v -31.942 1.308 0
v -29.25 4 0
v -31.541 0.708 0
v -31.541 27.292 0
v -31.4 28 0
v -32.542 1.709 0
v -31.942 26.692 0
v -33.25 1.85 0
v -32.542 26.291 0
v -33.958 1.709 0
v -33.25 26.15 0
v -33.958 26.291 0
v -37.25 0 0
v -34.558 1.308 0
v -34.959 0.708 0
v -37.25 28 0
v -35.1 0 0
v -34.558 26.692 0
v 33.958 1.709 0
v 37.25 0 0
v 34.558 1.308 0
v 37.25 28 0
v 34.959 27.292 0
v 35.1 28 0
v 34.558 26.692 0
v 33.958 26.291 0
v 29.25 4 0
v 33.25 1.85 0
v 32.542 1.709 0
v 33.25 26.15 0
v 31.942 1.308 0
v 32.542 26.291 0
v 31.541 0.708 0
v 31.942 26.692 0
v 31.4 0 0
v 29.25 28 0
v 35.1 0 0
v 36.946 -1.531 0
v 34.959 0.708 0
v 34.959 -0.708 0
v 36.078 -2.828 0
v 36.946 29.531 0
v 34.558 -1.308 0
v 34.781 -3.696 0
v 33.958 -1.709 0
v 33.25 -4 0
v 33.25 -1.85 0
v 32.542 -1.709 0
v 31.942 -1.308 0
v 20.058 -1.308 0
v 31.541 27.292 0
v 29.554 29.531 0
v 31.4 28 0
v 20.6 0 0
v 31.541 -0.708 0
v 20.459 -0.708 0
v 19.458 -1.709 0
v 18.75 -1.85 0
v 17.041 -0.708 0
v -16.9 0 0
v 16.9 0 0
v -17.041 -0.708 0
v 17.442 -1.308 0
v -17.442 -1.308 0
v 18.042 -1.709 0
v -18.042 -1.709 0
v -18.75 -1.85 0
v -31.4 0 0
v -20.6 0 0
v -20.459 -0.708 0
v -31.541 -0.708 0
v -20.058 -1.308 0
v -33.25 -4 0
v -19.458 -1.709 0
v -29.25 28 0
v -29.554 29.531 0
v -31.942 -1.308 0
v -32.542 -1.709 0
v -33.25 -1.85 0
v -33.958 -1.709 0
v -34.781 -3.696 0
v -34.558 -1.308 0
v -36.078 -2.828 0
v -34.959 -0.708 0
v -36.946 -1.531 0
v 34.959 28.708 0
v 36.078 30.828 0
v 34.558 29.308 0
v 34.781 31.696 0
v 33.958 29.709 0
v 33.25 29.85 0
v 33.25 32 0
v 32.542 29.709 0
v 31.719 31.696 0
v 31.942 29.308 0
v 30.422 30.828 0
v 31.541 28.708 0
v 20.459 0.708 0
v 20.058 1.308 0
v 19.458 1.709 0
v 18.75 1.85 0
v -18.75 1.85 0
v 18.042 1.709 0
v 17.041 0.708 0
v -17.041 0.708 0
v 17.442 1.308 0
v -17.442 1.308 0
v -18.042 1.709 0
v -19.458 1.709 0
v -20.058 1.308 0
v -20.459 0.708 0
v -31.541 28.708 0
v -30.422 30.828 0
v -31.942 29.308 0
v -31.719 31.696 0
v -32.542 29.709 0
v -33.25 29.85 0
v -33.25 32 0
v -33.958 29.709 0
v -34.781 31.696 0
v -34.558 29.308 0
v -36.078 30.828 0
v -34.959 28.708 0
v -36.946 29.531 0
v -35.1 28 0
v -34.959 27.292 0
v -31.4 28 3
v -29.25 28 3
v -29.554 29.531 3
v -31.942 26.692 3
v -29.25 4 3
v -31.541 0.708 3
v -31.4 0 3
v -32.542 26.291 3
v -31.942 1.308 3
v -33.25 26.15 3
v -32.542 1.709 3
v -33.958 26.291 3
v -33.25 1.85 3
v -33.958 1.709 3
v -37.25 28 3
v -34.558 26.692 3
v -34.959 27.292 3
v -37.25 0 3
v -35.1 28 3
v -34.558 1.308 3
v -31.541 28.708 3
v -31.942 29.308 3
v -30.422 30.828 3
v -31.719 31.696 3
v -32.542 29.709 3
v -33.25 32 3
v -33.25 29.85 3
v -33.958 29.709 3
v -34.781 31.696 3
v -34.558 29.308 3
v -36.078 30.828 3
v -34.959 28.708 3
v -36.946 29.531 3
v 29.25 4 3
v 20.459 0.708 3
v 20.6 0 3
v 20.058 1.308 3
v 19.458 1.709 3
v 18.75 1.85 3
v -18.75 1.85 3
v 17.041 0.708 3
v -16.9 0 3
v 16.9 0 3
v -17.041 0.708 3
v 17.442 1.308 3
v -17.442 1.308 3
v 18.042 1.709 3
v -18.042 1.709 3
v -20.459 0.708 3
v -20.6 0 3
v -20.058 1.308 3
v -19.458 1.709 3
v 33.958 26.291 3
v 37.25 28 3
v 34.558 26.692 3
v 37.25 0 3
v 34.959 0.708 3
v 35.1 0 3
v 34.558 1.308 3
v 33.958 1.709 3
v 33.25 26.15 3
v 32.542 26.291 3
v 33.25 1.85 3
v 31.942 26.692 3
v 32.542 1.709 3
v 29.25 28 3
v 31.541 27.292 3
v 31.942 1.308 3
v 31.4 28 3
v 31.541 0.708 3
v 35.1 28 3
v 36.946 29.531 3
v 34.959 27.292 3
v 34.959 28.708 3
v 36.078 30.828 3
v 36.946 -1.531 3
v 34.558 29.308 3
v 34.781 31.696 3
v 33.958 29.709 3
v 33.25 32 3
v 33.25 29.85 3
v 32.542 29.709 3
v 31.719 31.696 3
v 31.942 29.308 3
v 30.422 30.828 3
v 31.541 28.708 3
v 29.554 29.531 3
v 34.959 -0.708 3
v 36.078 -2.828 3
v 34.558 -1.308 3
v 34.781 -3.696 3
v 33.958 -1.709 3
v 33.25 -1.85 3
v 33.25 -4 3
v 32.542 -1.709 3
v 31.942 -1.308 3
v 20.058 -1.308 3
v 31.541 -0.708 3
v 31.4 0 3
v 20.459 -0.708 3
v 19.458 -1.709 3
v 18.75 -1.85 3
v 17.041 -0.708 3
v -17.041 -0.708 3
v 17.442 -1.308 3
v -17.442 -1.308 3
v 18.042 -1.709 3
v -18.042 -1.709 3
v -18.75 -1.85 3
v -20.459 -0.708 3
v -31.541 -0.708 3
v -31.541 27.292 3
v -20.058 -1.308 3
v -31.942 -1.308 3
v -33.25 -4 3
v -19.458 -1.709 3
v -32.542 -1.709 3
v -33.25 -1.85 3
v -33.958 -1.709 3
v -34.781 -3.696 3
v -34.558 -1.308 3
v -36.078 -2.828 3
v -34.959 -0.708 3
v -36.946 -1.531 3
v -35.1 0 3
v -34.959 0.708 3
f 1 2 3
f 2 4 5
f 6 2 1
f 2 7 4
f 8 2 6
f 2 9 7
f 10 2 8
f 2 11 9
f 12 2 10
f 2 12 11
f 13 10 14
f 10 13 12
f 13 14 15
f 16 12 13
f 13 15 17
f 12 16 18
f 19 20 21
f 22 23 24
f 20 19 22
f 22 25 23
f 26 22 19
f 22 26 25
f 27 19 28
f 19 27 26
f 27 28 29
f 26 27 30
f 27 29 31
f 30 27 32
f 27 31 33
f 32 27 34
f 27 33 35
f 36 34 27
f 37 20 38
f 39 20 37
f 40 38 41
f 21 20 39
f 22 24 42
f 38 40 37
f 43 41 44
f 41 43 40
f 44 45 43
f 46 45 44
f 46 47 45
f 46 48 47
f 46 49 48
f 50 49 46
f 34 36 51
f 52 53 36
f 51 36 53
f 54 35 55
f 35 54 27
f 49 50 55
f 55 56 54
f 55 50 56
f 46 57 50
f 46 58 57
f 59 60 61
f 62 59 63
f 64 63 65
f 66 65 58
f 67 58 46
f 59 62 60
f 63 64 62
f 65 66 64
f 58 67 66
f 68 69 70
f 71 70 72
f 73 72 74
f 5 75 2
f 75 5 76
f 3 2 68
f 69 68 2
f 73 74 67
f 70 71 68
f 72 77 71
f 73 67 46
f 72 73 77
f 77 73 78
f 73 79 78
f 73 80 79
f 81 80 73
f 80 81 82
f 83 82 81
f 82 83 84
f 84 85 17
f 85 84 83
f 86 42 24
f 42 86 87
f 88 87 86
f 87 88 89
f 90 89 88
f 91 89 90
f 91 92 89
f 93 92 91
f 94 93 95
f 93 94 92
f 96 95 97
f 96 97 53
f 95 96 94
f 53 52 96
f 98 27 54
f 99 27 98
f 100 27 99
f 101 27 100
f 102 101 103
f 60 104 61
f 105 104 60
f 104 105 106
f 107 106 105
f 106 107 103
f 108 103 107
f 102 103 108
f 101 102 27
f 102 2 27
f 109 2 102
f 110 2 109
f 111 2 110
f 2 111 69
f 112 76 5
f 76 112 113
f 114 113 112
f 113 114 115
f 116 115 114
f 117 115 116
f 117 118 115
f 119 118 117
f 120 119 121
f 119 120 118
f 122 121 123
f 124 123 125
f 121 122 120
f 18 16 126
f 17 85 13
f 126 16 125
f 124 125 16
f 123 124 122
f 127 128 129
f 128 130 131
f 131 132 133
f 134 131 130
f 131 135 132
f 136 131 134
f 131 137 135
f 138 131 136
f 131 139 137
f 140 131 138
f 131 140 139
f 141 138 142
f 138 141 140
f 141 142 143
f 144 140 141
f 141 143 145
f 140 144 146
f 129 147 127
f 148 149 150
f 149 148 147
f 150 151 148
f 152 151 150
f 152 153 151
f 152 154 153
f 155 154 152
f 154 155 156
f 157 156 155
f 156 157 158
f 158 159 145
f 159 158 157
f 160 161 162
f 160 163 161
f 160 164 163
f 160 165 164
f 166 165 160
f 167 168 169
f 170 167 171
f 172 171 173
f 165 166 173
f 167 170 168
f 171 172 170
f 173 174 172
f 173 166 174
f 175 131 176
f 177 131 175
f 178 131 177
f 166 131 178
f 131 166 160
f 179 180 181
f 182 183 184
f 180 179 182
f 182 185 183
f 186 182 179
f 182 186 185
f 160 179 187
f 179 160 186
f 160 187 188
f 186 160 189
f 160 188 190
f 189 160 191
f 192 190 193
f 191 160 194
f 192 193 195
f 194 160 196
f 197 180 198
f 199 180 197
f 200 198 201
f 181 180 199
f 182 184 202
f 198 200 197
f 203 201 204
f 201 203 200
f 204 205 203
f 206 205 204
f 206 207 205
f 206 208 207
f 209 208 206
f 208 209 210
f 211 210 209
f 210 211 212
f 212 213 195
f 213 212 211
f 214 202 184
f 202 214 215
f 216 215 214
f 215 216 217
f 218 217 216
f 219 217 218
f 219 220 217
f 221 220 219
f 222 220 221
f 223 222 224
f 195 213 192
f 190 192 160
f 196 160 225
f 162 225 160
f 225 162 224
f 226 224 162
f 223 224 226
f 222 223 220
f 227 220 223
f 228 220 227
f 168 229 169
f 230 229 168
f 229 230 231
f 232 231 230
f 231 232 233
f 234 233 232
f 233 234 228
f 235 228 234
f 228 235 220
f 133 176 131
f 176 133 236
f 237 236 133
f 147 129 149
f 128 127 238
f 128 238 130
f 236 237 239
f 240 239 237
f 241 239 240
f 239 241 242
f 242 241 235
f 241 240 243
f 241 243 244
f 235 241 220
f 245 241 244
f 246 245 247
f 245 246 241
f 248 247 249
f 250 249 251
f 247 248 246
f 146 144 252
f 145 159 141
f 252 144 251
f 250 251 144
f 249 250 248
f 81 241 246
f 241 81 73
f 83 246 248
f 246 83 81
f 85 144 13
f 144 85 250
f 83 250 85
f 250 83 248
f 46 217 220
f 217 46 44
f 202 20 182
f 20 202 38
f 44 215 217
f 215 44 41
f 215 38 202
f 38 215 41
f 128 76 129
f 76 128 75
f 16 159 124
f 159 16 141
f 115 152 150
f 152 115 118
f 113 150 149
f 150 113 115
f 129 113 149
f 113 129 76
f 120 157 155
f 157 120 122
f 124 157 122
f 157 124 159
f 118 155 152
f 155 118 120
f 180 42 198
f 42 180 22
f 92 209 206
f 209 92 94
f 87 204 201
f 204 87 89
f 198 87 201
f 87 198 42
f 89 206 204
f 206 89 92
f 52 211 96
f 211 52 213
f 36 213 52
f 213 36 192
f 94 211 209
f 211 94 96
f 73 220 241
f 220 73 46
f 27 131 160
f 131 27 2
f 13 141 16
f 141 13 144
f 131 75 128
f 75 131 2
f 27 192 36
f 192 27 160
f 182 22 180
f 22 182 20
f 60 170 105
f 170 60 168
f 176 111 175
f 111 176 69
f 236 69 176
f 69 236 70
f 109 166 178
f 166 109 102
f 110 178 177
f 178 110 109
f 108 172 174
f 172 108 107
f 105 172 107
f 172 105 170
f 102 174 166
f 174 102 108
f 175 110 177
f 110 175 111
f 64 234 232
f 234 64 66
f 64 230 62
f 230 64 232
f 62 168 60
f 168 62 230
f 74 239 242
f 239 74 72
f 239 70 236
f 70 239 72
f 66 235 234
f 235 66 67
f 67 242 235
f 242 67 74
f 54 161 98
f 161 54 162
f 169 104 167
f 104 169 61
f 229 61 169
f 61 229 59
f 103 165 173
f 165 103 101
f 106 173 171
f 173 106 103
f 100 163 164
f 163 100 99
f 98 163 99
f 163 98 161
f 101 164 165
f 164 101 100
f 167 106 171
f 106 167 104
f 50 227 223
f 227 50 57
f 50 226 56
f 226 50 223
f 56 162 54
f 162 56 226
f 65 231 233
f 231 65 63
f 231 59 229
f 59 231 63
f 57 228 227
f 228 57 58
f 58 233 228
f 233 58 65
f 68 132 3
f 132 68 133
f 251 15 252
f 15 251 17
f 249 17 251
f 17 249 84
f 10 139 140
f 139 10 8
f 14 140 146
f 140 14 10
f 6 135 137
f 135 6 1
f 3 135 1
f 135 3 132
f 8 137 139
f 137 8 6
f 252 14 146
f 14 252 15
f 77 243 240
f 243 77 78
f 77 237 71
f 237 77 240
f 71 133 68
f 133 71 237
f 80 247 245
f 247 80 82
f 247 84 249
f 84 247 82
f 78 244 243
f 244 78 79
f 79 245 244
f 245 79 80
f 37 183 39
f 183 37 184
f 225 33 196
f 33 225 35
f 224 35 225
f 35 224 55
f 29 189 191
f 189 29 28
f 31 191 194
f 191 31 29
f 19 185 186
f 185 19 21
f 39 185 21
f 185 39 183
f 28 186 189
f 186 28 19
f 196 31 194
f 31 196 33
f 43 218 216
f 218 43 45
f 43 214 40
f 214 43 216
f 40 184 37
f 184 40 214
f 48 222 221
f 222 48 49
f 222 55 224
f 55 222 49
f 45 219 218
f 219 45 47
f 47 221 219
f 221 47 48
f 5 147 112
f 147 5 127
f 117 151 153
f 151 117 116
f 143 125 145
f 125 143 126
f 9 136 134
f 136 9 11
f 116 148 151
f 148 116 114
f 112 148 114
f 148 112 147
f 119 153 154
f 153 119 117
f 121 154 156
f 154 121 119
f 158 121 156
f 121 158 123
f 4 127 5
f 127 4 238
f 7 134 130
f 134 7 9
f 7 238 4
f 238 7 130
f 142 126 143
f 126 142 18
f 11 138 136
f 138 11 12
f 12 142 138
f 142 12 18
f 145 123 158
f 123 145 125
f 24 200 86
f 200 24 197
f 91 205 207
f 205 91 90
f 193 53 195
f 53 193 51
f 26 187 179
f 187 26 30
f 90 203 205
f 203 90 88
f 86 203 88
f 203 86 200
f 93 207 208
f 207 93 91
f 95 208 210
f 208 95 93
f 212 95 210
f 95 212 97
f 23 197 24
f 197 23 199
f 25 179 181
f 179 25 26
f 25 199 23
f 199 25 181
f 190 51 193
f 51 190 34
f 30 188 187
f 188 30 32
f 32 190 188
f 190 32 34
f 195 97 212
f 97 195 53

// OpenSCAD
//OpenSCAD-Skript

//Moduldefinition mit Parametern
module support (
//Parameter
hght=3,distxi=37.5,distx=14.5,dia1=3.7,dia2=8,disty=28)
//Beginn Modul
{
difference(){   //difference 1
union(){        //union 1
difference(){   //difference 2
union(){        //union 2
    //alles, was vor der nächsten geschweiften Klammer steht, wird zusammengefügt (union 2)
//Blöcke
translate([-distxi/2, 0, 0])
cylinder(d=dia2, h=hght, $fn=16);
translate([distxi/2, 0, 0])
cylinder(d=dia2, h=hght, $fn=16);
translate([-distxi/2-distx, 0, 0])
cylinder(d=dia2, h=hght, $fn=16);
translate([distxi/2+distx, 0, 0])
cylinder(d=dia2, h=hght, $fn=16);
translate([-distxi/2-distx, disty, 0])
cylinder(d=dia2, h=hght, $fn=16);
translate([distxi/2+distx, disty, 0])
cylinder(d=dia2, h=hght, $fn=16);   
//Verbinder
translate([-distxi/2-distx, -dia2/2, 0])
cube([distxi+2*distx,dia2,hght]);
translate([-distxi/2-distx-dia2/2, 0, 0])
cube([dia2,disty,hght]);
translate([distxi/2+distx-dia2/2, 0, 0])
cube([dia2,disty,hght]);
}               //union 2 end
    //alles, was vor der nächsten geschweiften Klammer steht, wird davon abgezogen (difference 2)
//Ausschnitt
translate([-distxi/2, 0, -0.1])
cylinder(d=dia1, h=2*hght, $fn=16);
translate([distxi/2, 0, -0.1])
cylinder(d=dia1, h=2*hght, $fn=16);
translate([-distxi/2-distx, 0, -0.1])
cylinder(d=dia1, h=2*hght, $fn=16);
translate([distxi/2+distx, 0, -0.1])
cylinder(d=dia1, h=2*hght, $fn=16);
translate([-distxi/2-distx, disty, -0.1])
cylinder(d=dia1, h=2*hght, $fn=16);
translate([distxi/2+distx, disty, -0.1])
cylinder(d=dia1, h=2*hght, $fn=16); 
}  //difference 2 end
    //alles, was vor der nächsten geschweiften Klammer steht, wird dazu hinzugefügt (union 1)
//Text


}               //union 1 end
    //alles, was vor der nächsten geschweiften Klammer steht, wird davon wieder abgezogen (difference 1)

}               //difference 1 end

}  //module end


//Hier werden Instanzen des Moduls aufgerufen
translate([0,0,0]) support();
